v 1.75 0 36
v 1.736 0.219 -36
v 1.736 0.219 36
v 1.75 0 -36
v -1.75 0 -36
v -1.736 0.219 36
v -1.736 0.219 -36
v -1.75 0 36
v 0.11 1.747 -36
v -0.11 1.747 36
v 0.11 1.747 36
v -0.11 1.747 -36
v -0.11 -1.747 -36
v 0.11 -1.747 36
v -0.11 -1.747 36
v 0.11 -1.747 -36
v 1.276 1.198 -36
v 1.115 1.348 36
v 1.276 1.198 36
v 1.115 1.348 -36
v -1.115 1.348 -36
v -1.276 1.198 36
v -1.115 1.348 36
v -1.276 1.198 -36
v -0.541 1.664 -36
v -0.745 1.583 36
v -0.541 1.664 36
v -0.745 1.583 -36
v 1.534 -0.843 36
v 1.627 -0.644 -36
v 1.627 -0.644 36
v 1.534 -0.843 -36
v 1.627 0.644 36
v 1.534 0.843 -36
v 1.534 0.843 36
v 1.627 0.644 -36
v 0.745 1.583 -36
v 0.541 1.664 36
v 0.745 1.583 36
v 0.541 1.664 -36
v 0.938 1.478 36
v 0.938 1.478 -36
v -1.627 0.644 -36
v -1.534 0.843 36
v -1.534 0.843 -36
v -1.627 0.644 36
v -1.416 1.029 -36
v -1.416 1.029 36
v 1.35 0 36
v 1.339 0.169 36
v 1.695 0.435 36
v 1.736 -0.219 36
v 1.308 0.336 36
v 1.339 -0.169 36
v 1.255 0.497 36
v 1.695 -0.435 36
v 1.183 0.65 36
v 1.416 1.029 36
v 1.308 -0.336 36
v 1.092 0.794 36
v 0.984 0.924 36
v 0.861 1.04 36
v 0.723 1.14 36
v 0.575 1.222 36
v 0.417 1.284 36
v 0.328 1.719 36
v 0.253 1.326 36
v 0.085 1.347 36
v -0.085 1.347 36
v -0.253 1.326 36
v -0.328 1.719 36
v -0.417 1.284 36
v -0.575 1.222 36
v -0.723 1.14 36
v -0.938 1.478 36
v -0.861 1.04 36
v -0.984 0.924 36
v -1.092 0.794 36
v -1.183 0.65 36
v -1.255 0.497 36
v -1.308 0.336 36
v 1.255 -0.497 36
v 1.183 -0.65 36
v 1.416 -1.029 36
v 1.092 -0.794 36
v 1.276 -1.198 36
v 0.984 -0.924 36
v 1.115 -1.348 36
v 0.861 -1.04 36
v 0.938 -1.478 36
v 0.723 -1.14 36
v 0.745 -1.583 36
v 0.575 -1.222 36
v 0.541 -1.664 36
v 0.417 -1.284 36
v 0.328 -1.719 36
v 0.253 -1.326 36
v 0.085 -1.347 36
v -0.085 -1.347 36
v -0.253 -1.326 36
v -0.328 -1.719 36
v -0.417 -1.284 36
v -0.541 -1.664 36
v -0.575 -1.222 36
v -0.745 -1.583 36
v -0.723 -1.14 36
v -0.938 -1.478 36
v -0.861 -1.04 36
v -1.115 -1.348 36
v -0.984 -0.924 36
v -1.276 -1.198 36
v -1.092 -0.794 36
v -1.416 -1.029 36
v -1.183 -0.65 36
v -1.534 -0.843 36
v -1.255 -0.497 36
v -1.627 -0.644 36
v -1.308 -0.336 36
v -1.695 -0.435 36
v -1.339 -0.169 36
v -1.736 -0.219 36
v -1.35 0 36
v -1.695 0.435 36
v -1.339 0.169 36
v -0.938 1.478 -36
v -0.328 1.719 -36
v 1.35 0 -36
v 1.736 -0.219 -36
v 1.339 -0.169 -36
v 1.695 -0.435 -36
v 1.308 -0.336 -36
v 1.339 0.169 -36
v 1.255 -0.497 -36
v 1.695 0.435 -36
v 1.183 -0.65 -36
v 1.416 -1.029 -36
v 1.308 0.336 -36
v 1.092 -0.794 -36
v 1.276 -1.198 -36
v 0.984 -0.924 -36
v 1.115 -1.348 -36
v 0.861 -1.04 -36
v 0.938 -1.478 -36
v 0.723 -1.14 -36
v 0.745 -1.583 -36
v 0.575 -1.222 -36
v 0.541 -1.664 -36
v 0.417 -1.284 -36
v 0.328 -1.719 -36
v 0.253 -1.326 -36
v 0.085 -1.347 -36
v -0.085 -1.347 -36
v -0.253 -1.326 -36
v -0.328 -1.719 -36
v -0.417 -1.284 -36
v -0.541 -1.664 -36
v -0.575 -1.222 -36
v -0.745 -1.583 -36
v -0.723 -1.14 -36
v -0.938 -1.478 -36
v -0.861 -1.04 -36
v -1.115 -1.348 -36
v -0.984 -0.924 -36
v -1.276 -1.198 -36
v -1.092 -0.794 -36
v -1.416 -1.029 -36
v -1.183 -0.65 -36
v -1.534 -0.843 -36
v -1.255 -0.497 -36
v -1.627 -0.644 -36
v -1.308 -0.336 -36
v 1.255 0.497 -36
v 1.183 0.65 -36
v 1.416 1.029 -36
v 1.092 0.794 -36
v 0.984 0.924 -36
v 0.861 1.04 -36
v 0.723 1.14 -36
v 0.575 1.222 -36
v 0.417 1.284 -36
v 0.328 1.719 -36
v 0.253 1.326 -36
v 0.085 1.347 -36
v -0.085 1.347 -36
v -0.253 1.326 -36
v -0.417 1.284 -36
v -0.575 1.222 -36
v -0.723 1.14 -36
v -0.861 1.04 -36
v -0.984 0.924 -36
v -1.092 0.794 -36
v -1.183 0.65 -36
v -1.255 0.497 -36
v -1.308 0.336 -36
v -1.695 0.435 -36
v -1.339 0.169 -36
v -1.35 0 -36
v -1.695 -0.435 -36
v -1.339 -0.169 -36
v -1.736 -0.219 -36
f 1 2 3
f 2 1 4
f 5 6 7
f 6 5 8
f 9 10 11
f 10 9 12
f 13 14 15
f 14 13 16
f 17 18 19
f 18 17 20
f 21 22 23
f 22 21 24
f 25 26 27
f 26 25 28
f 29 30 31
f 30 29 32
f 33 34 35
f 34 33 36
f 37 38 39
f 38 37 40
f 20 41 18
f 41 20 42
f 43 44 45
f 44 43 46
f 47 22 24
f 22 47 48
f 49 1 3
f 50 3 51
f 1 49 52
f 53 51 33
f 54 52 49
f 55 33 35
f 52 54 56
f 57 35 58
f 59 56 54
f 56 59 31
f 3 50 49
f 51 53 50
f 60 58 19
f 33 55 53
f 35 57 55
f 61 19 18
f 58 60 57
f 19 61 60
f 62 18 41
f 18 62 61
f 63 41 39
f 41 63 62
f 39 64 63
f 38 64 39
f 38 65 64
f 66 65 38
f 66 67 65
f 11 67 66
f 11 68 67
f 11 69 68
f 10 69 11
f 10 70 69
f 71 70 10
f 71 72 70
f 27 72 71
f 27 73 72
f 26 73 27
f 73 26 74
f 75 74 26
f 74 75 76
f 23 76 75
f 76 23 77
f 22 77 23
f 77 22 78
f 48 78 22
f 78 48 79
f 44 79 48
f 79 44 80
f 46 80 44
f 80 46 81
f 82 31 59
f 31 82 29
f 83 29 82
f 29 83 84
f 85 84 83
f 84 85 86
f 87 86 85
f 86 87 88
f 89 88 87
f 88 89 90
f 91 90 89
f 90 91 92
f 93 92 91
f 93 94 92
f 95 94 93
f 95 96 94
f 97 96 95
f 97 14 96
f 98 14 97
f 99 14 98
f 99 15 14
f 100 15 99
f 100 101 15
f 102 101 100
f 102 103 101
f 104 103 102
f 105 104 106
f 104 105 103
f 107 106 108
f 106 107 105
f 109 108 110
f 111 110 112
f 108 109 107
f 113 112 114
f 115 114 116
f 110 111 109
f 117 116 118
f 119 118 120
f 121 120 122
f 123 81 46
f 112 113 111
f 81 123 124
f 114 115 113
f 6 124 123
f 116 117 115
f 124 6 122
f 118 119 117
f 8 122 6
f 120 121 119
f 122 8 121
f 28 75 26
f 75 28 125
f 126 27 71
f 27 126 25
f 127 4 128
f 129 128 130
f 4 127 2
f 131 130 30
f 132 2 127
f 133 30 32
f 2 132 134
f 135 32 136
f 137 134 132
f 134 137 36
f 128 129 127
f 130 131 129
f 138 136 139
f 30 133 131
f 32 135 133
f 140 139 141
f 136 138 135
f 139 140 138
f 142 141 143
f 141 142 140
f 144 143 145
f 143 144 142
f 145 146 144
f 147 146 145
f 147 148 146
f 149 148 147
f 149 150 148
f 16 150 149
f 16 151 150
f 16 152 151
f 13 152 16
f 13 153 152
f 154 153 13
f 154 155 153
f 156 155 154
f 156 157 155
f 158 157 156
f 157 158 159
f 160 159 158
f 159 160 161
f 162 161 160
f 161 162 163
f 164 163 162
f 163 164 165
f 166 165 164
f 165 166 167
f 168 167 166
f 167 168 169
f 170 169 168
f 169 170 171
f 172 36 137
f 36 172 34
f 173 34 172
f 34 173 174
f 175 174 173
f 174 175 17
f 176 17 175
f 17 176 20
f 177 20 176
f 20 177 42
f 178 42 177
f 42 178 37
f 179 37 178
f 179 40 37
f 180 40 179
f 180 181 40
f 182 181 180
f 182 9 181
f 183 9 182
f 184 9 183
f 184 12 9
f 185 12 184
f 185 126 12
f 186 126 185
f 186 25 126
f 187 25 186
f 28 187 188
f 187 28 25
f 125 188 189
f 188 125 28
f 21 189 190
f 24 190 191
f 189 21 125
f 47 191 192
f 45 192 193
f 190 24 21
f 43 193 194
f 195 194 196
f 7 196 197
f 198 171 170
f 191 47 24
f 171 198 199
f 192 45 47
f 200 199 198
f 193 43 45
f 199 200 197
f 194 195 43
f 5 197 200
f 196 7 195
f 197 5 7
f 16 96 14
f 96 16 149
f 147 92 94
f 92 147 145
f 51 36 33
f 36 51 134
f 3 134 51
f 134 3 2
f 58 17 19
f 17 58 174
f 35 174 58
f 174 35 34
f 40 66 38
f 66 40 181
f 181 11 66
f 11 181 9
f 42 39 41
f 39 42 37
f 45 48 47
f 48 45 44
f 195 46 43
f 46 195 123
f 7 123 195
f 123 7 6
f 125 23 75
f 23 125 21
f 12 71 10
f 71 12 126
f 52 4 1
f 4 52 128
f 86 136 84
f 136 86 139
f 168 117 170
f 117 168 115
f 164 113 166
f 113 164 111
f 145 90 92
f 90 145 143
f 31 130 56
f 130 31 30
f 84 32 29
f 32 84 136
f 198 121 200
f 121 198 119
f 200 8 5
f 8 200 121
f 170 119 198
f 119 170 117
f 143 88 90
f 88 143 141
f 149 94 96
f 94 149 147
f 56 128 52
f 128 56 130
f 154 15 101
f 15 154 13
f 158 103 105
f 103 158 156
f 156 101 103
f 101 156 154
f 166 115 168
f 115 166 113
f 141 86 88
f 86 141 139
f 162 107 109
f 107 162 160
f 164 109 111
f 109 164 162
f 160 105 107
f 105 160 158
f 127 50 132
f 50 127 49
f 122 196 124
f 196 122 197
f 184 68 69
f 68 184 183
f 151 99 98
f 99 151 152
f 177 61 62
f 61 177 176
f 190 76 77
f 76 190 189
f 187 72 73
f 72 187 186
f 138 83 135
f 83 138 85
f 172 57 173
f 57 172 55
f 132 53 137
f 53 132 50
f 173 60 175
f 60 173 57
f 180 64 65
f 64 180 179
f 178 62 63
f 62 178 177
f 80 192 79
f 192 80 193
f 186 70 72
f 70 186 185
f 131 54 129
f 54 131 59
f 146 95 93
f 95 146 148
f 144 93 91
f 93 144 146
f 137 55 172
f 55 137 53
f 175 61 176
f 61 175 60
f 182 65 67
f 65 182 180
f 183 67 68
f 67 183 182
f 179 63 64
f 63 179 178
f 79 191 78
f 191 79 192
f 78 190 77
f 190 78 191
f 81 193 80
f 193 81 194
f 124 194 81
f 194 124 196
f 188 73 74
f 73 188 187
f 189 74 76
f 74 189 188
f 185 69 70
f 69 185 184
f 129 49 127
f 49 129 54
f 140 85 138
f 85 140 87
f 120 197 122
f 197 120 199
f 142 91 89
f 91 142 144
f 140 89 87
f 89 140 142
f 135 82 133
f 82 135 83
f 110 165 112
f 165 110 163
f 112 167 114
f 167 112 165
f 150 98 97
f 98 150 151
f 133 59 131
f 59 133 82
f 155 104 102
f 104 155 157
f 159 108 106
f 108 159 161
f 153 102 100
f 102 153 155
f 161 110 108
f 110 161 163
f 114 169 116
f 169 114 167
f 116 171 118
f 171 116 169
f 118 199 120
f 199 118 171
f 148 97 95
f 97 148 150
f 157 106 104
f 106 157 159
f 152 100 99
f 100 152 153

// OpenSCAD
$fn = 50;


difference() {
	union() {
		translate(v = [0, 0, -36.0000000000]) {
			cylinder(h = 72, r = 1.7500000000);
		}
	}
	union() {
		translate(v = [0, 0, -100.0000000000]) {
			cylinder(h = 200, r = 1.3500000000);
		}
	}
}
